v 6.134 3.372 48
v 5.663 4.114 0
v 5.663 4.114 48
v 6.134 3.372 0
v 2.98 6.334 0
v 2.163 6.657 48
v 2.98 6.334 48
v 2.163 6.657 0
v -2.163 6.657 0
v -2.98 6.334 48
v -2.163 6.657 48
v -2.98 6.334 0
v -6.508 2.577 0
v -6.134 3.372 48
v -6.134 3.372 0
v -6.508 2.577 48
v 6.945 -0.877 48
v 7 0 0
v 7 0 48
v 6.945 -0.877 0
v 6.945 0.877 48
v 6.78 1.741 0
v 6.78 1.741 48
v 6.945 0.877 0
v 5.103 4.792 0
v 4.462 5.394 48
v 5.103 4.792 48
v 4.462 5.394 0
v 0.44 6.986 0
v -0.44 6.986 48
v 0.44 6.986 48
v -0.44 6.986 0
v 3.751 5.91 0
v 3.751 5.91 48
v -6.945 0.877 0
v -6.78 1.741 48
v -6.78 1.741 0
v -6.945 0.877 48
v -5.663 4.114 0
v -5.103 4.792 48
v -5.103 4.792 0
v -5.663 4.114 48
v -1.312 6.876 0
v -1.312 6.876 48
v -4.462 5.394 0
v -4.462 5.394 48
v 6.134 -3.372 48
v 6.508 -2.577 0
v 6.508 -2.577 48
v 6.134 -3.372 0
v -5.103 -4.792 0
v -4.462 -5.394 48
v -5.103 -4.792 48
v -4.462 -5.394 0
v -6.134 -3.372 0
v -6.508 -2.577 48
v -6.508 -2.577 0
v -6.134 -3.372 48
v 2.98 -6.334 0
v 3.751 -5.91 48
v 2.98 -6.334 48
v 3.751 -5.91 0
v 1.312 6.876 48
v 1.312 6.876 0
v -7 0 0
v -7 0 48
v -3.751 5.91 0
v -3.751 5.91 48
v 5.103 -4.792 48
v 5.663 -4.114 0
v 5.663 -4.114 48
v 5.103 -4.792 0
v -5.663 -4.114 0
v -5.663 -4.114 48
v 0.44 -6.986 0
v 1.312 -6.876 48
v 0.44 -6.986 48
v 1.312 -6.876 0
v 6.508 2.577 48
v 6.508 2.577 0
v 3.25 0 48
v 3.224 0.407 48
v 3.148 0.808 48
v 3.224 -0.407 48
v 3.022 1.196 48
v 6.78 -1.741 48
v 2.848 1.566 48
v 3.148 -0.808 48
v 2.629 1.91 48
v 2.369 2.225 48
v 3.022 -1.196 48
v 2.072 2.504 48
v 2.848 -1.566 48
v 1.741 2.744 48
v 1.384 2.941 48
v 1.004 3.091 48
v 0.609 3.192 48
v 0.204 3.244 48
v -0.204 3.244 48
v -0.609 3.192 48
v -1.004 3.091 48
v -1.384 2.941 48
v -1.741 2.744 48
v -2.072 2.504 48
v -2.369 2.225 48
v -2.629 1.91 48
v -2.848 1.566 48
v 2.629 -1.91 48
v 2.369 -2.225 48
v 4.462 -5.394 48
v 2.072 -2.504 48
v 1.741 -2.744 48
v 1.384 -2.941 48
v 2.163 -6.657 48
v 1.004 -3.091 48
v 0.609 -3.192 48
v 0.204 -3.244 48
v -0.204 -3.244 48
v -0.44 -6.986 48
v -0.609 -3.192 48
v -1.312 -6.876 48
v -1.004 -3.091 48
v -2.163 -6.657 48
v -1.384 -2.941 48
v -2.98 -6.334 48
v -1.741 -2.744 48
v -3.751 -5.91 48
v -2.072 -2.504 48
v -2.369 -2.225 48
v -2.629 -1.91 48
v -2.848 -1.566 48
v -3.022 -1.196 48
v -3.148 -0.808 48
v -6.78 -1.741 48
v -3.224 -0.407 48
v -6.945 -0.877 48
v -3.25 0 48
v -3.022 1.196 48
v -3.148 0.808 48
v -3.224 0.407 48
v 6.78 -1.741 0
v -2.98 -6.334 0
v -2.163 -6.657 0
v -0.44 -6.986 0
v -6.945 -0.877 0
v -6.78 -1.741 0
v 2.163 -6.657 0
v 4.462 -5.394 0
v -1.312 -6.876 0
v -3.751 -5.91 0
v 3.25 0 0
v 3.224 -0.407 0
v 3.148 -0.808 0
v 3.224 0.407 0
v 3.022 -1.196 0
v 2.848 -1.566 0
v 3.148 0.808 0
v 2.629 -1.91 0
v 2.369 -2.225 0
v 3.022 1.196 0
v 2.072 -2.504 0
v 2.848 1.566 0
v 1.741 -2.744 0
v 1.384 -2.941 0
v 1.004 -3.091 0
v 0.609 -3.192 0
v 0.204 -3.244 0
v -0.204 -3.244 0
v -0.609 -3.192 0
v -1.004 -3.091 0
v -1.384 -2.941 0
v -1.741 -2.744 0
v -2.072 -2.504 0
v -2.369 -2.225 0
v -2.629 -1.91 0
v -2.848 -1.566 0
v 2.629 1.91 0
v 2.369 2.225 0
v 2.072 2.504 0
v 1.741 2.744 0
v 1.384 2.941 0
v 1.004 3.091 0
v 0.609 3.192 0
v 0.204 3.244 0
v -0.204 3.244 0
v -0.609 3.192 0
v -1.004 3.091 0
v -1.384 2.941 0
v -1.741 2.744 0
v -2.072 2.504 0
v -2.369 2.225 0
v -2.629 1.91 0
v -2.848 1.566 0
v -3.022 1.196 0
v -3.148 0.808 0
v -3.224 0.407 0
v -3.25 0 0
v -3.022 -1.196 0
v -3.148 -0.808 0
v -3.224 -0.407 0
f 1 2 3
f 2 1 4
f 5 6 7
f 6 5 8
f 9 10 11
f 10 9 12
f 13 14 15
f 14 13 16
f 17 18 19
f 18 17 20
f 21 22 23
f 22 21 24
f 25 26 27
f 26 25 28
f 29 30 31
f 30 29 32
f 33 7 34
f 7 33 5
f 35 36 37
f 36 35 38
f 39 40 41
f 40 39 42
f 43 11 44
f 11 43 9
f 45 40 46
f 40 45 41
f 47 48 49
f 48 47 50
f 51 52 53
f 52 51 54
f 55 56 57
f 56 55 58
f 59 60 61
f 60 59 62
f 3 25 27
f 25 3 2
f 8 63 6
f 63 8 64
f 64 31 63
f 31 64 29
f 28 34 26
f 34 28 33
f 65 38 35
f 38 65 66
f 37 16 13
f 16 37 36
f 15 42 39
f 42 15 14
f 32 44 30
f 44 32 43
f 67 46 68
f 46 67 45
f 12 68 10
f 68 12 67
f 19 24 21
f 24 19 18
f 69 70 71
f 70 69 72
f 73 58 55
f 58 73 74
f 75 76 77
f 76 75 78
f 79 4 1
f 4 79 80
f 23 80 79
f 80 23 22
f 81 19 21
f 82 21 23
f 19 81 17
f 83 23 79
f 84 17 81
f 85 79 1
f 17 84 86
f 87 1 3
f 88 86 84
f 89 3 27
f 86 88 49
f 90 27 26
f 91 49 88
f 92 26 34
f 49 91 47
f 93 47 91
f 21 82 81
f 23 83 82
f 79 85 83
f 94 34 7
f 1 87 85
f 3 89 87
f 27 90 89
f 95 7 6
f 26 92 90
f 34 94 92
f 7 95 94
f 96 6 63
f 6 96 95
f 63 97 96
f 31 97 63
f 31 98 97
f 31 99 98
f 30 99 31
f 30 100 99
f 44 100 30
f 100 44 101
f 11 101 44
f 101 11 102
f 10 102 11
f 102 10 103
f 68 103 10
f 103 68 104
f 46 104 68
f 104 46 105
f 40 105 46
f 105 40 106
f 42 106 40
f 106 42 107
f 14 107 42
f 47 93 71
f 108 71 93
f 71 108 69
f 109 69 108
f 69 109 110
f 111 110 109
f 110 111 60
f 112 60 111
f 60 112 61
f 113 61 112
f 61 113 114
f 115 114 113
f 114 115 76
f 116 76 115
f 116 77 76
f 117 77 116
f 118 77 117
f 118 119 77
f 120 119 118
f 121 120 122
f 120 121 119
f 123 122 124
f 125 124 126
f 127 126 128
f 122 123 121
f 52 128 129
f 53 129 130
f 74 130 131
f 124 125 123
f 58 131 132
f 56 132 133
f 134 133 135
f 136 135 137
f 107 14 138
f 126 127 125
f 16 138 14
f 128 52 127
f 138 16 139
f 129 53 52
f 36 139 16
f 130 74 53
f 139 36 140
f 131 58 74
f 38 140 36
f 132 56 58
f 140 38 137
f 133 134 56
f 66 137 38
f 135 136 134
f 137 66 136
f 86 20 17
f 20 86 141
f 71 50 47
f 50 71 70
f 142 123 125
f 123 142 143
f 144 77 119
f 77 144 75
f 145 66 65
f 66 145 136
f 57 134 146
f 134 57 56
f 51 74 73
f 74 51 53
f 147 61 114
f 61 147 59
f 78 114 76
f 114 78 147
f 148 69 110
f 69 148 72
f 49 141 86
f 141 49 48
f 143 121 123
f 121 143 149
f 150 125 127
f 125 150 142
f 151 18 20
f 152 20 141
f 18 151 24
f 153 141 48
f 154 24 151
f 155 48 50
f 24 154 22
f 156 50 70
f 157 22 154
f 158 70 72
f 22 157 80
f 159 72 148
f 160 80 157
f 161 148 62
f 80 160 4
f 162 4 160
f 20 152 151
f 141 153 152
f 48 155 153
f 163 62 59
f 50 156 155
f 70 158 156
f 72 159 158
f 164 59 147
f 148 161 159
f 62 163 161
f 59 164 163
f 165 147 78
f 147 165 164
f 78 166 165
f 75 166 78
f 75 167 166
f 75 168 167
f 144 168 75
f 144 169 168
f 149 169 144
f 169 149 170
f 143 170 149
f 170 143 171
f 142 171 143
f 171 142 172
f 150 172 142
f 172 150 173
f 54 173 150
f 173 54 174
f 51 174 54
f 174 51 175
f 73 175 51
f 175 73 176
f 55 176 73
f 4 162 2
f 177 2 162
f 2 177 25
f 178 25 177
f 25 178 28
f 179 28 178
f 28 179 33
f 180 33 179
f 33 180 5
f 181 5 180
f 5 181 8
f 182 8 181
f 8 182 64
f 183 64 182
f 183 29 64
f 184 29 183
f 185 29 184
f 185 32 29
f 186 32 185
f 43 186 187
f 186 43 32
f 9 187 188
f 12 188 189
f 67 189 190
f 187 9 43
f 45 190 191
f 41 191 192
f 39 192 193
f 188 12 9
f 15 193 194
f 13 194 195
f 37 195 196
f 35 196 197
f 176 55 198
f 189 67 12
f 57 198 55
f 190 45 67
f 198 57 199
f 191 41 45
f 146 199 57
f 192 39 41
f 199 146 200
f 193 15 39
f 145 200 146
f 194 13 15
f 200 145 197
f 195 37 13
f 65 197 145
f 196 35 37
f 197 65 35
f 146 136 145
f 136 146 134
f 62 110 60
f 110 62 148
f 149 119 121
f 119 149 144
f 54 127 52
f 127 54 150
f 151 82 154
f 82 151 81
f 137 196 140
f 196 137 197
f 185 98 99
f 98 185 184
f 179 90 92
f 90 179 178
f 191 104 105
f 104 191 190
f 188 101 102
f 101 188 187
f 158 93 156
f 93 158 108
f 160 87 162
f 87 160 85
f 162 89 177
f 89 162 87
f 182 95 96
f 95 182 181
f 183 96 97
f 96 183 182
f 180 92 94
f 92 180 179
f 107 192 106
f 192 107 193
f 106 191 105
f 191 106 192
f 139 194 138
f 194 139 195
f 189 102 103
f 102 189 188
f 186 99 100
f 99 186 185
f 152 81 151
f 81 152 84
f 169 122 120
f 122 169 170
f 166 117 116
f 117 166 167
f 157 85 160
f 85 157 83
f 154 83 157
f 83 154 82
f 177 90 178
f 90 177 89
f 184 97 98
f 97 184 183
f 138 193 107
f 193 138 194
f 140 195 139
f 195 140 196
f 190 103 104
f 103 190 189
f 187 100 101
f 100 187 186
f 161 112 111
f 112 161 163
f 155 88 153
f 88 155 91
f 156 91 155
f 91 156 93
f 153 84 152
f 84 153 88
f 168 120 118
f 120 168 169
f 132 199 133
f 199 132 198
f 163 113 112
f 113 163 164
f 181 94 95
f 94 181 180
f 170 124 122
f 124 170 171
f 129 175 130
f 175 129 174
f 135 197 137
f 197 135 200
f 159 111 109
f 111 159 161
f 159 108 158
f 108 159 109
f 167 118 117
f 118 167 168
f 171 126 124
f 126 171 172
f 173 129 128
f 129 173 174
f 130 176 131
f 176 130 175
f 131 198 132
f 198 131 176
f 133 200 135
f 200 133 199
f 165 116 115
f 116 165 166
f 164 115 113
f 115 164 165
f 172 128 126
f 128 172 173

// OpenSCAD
$fn = 50;


difference() {
	union() {
		cylinder(h = 48, r = 7.0000000000);
	}
	union() {
		translate(v = [0, 0, -100]) {
			cylinder(h = 200, r = 3.2500000000);
		}
	}
}
